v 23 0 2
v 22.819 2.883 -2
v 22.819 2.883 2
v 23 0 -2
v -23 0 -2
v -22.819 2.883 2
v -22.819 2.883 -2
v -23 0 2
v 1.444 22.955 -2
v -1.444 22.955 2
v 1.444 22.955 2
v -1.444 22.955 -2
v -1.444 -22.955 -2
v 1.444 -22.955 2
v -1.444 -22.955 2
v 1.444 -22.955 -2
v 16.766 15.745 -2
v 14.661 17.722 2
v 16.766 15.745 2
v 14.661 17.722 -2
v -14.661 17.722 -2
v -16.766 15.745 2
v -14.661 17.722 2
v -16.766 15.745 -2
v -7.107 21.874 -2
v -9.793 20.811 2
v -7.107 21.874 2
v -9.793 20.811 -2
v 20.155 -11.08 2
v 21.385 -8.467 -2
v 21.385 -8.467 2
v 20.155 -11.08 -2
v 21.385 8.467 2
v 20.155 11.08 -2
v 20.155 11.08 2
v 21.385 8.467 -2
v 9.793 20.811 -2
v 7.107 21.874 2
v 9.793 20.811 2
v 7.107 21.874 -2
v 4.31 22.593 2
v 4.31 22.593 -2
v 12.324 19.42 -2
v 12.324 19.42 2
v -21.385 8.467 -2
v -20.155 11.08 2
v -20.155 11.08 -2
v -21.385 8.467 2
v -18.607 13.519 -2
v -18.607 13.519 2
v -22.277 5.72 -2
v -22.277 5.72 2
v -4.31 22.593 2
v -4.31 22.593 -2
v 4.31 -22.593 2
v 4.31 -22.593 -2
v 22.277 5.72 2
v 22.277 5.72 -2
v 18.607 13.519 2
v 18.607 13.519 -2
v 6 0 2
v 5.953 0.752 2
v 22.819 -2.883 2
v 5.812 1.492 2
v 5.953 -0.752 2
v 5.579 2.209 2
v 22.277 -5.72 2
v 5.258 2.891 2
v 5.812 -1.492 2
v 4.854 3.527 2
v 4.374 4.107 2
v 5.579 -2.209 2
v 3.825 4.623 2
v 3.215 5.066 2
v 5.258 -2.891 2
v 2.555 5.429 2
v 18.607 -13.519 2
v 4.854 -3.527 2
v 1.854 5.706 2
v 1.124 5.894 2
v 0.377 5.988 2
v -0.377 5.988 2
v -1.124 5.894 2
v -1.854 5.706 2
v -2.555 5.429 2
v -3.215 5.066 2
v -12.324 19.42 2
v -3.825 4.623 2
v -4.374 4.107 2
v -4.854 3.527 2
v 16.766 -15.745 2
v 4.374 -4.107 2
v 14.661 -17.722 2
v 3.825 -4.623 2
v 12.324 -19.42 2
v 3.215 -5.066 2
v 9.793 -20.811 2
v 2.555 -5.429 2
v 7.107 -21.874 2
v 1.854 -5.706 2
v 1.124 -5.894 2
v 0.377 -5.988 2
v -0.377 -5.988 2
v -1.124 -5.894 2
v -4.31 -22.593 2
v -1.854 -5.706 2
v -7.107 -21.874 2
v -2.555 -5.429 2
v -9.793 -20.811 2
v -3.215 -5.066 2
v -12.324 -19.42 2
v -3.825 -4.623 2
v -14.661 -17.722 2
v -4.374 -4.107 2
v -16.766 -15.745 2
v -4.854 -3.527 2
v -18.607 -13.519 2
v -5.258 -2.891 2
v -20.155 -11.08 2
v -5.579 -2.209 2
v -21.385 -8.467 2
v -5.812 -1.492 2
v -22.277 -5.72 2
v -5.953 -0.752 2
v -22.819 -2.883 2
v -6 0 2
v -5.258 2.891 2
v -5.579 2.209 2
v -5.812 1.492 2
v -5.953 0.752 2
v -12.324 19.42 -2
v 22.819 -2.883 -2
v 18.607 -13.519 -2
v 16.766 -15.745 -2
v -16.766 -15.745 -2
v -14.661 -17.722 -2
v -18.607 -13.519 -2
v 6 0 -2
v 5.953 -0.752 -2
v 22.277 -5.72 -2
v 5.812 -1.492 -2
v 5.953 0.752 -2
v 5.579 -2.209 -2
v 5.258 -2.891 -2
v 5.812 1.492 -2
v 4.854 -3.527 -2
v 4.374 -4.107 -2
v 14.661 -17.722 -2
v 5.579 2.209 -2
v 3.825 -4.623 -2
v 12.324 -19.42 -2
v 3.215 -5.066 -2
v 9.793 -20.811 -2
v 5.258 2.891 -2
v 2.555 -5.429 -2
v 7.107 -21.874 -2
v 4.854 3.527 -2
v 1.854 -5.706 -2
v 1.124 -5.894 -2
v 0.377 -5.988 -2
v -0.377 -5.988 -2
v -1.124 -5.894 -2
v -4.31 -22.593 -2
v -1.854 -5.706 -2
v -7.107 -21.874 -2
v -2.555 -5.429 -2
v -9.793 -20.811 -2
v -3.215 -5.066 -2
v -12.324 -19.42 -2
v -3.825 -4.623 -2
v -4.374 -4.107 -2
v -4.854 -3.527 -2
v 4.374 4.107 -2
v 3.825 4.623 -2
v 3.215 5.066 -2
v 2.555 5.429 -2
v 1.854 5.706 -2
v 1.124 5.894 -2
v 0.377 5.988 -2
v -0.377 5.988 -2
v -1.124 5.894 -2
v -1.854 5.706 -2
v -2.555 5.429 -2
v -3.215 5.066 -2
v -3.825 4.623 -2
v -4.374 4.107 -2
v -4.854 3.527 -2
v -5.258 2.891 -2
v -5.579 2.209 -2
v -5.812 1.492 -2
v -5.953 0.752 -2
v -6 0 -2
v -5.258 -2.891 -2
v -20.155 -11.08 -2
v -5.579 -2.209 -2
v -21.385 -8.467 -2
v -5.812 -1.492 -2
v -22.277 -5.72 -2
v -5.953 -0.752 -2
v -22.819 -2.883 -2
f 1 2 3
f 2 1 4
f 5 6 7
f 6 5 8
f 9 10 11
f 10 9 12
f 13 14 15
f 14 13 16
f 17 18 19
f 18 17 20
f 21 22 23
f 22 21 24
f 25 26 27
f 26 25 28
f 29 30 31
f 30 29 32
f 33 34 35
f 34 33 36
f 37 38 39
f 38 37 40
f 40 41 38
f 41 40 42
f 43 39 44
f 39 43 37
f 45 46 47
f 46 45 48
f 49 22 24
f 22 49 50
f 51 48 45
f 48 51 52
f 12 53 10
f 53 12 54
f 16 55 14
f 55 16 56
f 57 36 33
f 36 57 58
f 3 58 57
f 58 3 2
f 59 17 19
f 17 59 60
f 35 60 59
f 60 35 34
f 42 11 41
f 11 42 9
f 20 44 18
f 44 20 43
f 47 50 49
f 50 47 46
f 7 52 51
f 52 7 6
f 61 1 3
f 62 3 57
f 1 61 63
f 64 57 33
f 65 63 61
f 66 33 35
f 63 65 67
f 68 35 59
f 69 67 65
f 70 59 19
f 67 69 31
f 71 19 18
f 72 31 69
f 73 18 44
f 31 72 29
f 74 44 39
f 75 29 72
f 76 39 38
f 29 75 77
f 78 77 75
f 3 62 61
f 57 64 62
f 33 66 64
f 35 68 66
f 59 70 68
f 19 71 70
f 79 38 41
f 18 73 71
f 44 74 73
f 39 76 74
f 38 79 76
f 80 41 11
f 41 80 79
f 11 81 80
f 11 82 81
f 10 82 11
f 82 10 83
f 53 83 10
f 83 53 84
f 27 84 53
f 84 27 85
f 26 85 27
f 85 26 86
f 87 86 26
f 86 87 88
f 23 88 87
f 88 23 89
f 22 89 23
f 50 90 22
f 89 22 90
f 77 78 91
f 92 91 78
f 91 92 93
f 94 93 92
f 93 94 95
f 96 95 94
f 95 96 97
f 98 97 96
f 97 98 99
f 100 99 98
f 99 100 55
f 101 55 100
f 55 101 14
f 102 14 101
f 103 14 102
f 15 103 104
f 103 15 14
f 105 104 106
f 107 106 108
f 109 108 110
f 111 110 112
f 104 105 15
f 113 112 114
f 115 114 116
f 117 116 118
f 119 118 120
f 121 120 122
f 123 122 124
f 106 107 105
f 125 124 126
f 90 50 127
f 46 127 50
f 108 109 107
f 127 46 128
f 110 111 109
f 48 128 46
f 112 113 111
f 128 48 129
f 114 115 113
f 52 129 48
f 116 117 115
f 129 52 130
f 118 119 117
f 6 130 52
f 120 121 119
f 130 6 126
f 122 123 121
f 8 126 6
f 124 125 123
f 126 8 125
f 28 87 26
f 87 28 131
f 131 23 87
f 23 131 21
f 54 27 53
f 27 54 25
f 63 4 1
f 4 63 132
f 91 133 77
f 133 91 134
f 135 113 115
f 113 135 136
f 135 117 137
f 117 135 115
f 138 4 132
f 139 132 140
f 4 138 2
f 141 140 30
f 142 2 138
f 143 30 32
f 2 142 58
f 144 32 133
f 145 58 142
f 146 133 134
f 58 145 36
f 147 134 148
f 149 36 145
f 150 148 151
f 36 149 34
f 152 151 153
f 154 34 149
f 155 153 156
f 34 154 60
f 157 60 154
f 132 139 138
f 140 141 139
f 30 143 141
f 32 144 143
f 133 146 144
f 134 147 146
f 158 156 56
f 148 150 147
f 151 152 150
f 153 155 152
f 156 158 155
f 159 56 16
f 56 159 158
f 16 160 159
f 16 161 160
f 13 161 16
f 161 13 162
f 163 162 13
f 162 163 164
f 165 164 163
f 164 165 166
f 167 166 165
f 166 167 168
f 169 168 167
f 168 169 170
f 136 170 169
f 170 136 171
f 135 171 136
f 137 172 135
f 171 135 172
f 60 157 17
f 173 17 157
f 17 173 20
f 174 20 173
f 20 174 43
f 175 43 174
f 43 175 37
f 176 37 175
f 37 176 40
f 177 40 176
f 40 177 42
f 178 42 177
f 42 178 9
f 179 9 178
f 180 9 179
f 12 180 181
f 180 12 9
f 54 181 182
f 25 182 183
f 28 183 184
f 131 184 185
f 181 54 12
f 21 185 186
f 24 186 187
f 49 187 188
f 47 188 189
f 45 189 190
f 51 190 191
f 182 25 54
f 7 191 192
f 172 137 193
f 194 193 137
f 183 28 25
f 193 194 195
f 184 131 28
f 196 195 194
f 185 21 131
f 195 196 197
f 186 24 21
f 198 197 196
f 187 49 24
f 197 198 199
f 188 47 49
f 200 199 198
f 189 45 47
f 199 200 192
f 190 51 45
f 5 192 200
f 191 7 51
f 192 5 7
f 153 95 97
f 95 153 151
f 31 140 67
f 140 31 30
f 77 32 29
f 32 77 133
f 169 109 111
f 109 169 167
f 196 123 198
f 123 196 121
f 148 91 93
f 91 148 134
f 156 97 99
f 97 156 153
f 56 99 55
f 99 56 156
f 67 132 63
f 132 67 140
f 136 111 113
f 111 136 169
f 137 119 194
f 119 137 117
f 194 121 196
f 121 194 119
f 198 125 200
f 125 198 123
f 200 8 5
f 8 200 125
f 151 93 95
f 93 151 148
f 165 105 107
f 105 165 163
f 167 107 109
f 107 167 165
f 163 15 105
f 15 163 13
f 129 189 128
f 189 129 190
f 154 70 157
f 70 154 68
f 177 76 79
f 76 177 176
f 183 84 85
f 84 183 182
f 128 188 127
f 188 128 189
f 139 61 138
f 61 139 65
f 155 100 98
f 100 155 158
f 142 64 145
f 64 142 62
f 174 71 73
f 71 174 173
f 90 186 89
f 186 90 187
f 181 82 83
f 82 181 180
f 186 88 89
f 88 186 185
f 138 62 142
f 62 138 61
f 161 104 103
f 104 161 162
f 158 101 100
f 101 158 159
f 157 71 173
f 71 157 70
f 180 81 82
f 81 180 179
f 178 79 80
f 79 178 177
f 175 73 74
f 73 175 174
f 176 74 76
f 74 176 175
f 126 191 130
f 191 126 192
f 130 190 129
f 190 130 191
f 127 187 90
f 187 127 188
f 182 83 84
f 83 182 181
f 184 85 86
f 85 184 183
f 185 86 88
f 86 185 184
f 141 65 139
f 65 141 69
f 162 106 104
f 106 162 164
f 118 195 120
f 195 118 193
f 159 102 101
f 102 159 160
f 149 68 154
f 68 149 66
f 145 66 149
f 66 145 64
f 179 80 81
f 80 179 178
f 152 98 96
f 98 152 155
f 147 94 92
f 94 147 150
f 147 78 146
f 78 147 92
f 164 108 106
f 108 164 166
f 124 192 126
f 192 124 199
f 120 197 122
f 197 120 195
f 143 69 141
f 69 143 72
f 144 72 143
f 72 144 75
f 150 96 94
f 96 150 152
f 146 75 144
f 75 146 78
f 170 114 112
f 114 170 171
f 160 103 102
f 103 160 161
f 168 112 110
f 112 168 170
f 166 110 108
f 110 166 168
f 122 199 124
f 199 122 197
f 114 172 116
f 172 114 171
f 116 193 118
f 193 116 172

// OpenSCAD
$fn = 50;


difference() {
	union() {
		translate(v = [0, 0, -2.0000000000]) {
			cylinder(h = 4, r = 23.0000000000);
		}
	}
	union() {
		translate(v = [0, 0, -100.0000000000]) {
			cylinder(h = 200, r = 6);
		}
	}
}
